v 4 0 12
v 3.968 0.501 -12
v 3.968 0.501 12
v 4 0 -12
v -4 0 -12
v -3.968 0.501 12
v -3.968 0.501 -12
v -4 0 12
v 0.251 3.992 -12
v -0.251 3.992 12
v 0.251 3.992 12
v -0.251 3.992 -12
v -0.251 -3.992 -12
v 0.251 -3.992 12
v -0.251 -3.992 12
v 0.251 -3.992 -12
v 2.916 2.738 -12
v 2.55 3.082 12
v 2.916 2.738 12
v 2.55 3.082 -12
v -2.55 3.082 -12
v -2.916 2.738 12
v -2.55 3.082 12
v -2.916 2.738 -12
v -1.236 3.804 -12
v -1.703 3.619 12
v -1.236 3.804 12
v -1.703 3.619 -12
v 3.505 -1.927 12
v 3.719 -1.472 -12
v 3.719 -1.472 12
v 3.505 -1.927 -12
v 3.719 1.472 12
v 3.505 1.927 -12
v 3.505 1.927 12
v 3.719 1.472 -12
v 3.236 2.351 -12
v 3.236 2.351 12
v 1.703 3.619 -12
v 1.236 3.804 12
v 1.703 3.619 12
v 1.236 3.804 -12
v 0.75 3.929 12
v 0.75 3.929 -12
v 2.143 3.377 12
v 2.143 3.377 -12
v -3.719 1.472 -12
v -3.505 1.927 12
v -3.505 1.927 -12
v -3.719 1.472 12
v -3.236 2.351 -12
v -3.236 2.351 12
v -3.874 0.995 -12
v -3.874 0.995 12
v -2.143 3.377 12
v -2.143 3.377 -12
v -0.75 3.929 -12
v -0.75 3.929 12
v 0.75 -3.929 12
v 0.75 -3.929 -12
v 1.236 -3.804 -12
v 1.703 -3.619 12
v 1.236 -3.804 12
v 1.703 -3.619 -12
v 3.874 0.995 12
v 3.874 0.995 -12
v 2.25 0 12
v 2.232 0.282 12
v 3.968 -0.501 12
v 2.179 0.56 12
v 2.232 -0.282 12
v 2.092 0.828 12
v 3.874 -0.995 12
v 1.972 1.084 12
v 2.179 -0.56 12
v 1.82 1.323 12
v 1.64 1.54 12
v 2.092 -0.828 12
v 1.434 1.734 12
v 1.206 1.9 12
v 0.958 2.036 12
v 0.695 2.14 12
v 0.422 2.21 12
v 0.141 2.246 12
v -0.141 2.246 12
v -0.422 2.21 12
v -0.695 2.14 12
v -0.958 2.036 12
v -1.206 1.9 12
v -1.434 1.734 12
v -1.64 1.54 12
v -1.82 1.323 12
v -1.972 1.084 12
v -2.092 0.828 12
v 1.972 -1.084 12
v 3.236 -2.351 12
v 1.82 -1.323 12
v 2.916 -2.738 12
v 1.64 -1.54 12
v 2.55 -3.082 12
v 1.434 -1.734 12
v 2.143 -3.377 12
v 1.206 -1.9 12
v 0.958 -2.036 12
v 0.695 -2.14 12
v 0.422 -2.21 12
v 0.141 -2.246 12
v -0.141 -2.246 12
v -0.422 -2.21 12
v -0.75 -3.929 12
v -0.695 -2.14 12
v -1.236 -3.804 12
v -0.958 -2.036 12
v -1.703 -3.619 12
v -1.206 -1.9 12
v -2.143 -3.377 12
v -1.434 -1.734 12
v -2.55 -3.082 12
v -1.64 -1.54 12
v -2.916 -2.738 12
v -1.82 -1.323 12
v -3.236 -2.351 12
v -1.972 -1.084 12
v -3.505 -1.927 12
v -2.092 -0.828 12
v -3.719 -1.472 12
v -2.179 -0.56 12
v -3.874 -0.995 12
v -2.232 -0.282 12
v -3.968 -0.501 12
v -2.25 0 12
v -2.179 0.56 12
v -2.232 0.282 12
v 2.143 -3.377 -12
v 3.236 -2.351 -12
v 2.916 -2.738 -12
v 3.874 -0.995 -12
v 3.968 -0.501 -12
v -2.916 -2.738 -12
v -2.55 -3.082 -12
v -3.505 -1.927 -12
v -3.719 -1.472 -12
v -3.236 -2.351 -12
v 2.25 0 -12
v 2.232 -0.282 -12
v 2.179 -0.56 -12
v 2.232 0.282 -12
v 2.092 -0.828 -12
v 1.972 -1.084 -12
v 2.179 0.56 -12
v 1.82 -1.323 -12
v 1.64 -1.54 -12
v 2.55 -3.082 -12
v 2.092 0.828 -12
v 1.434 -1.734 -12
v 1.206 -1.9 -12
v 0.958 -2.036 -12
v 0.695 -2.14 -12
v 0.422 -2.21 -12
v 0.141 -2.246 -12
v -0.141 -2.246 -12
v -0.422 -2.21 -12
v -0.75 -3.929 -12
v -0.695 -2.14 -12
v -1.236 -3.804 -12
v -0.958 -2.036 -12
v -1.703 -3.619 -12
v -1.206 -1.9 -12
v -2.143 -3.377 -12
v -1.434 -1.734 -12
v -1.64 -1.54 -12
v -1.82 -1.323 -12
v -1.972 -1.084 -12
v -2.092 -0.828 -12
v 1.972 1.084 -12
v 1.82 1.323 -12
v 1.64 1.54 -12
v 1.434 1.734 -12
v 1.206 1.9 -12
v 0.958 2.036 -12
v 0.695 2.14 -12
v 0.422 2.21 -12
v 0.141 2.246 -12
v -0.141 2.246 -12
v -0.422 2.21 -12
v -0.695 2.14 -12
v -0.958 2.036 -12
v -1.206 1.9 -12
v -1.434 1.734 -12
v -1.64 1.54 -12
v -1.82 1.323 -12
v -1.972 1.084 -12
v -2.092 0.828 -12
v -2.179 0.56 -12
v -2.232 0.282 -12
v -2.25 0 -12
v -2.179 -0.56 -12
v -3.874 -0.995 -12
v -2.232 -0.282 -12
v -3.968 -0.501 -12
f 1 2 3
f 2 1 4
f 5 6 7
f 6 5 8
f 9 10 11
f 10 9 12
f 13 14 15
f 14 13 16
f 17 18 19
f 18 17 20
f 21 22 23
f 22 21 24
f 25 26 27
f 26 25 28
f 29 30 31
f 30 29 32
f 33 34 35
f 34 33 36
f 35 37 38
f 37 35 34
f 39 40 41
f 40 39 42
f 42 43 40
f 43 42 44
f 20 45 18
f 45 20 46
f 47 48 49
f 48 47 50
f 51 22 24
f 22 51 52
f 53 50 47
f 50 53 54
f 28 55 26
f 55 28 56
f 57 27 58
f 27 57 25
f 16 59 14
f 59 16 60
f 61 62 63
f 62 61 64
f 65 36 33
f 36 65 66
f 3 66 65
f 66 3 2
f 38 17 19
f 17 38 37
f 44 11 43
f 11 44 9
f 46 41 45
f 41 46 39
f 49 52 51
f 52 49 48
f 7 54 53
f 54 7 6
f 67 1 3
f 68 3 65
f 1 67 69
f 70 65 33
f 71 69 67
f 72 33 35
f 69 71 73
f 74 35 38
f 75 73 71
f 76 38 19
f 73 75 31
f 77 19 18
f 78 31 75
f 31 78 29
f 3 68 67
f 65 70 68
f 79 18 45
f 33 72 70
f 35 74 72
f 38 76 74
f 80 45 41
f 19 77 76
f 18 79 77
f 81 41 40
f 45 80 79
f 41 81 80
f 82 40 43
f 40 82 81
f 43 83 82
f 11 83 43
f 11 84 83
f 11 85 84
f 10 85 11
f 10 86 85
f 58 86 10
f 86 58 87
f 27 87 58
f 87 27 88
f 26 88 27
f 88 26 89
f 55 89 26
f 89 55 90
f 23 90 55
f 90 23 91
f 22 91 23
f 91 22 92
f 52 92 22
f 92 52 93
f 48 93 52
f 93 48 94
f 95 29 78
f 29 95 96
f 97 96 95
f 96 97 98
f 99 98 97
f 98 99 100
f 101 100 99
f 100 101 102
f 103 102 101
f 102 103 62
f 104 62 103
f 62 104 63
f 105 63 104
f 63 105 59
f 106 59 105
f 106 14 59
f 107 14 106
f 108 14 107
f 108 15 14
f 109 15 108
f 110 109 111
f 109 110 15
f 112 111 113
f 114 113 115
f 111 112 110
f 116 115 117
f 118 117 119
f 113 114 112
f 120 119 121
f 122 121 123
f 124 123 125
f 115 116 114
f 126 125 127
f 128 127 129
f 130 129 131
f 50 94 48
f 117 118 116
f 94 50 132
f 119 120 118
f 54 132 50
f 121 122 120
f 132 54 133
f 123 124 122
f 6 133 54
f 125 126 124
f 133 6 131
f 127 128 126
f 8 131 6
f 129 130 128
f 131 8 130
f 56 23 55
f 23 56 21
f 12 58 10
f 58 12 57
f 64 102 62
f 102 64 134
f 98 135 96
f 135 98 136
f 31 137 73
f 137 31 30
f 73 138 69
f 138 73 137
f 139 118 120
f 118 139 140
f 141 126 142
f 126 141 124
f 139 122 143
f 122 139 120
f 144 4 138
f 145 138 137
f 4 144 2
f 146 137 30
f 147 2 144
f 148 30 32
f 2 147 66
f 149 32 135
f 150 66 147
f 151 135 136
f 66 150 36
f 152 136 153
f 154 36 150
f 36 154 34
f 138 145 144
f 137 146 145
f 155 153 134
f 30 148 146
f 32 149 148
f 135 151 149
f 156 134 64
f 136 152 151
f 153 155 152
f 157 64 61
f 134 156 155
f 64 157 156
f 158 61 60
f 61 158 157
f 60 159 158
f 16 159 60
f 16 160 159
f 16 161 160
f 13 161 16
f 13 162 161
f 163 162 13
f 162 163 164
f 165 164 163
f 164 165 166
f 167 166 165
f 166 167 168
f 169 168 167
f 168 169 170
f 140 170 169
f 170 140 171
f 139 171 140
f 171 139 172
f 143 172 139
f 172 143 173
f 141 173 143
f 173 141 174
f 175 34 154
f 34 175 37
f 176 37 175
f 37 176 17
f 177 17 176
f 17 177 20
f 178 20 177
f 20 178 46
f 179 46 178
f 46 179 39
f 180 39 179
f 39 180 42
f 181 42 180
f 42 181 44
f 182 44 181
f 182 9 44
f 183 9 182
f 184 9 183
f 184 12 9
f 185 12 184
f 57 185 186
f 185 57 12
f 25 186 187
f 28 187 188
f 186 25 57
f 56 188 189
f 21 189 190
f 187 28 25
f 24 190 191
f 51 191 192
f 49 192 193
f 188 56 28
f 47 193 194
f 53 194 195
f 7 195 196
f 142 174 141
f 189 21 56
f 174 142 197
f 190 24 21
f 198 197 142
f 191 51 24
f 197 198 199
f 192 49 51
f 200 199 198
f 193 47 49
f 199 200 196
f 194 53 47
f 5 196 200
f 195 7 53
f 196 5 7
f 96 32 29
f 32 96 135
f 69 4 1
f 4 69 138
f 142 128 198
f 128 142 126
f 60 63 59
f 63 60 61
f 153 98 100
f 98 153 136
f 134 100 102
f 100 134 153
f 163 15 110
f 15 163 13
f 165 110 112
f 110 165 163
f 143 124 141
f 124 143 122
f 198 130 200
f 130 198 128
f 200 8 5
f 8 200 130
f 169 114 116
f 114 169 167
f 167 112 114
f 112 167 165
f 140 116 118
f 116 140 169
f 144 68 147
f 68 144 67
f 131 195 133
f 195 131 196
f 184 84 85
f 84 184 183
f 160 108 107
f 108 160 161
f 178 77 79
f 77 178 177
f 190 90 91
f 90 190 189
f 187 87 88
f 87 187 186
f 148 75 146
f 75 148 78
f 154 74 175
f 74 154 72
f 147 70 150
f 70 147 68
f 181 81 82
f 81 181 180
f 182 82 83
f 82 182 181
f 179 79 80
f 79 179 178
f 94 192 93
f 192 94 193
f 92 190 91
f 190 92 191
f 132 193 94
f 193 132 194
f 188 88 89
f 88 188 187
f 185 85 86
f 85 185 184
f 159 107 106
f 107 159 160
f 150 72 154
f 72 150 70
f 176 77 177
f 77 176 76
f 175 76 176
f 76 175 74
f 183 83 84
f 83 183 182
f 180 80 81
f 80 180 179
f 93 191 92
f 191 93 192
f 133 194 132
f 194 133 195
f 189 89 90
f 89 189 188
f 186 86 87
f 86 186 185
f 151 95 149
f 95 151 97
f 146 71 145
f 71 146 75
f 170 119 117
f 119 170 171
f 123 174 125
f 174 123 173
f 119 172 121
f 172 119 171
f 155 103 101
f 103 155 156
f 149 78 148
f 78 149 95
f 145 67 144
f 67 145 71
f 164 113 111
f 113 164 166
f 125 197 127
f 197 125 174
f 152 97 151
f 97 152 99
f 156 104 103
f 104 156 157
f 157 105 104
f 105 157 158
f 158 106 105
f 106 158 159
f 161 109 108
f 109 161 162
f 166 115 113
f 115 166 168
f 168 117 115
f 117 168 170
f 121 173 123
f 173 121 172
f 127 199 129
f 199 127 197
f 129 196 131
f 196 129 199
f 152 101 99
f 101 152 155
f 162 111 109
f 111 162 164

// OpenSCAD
$fn = 50;


difference() {
	union() {
		translate(v = [0, 0, -12.0000000000]) {
			cylinder(h = 24, r = 4.0000000000);
		}
	}
	union() {
		translate(v = [0, 0, -100.0000000000]) {
			cylinder(h = 200, r = 2.2500000000);
		}
	}
}
